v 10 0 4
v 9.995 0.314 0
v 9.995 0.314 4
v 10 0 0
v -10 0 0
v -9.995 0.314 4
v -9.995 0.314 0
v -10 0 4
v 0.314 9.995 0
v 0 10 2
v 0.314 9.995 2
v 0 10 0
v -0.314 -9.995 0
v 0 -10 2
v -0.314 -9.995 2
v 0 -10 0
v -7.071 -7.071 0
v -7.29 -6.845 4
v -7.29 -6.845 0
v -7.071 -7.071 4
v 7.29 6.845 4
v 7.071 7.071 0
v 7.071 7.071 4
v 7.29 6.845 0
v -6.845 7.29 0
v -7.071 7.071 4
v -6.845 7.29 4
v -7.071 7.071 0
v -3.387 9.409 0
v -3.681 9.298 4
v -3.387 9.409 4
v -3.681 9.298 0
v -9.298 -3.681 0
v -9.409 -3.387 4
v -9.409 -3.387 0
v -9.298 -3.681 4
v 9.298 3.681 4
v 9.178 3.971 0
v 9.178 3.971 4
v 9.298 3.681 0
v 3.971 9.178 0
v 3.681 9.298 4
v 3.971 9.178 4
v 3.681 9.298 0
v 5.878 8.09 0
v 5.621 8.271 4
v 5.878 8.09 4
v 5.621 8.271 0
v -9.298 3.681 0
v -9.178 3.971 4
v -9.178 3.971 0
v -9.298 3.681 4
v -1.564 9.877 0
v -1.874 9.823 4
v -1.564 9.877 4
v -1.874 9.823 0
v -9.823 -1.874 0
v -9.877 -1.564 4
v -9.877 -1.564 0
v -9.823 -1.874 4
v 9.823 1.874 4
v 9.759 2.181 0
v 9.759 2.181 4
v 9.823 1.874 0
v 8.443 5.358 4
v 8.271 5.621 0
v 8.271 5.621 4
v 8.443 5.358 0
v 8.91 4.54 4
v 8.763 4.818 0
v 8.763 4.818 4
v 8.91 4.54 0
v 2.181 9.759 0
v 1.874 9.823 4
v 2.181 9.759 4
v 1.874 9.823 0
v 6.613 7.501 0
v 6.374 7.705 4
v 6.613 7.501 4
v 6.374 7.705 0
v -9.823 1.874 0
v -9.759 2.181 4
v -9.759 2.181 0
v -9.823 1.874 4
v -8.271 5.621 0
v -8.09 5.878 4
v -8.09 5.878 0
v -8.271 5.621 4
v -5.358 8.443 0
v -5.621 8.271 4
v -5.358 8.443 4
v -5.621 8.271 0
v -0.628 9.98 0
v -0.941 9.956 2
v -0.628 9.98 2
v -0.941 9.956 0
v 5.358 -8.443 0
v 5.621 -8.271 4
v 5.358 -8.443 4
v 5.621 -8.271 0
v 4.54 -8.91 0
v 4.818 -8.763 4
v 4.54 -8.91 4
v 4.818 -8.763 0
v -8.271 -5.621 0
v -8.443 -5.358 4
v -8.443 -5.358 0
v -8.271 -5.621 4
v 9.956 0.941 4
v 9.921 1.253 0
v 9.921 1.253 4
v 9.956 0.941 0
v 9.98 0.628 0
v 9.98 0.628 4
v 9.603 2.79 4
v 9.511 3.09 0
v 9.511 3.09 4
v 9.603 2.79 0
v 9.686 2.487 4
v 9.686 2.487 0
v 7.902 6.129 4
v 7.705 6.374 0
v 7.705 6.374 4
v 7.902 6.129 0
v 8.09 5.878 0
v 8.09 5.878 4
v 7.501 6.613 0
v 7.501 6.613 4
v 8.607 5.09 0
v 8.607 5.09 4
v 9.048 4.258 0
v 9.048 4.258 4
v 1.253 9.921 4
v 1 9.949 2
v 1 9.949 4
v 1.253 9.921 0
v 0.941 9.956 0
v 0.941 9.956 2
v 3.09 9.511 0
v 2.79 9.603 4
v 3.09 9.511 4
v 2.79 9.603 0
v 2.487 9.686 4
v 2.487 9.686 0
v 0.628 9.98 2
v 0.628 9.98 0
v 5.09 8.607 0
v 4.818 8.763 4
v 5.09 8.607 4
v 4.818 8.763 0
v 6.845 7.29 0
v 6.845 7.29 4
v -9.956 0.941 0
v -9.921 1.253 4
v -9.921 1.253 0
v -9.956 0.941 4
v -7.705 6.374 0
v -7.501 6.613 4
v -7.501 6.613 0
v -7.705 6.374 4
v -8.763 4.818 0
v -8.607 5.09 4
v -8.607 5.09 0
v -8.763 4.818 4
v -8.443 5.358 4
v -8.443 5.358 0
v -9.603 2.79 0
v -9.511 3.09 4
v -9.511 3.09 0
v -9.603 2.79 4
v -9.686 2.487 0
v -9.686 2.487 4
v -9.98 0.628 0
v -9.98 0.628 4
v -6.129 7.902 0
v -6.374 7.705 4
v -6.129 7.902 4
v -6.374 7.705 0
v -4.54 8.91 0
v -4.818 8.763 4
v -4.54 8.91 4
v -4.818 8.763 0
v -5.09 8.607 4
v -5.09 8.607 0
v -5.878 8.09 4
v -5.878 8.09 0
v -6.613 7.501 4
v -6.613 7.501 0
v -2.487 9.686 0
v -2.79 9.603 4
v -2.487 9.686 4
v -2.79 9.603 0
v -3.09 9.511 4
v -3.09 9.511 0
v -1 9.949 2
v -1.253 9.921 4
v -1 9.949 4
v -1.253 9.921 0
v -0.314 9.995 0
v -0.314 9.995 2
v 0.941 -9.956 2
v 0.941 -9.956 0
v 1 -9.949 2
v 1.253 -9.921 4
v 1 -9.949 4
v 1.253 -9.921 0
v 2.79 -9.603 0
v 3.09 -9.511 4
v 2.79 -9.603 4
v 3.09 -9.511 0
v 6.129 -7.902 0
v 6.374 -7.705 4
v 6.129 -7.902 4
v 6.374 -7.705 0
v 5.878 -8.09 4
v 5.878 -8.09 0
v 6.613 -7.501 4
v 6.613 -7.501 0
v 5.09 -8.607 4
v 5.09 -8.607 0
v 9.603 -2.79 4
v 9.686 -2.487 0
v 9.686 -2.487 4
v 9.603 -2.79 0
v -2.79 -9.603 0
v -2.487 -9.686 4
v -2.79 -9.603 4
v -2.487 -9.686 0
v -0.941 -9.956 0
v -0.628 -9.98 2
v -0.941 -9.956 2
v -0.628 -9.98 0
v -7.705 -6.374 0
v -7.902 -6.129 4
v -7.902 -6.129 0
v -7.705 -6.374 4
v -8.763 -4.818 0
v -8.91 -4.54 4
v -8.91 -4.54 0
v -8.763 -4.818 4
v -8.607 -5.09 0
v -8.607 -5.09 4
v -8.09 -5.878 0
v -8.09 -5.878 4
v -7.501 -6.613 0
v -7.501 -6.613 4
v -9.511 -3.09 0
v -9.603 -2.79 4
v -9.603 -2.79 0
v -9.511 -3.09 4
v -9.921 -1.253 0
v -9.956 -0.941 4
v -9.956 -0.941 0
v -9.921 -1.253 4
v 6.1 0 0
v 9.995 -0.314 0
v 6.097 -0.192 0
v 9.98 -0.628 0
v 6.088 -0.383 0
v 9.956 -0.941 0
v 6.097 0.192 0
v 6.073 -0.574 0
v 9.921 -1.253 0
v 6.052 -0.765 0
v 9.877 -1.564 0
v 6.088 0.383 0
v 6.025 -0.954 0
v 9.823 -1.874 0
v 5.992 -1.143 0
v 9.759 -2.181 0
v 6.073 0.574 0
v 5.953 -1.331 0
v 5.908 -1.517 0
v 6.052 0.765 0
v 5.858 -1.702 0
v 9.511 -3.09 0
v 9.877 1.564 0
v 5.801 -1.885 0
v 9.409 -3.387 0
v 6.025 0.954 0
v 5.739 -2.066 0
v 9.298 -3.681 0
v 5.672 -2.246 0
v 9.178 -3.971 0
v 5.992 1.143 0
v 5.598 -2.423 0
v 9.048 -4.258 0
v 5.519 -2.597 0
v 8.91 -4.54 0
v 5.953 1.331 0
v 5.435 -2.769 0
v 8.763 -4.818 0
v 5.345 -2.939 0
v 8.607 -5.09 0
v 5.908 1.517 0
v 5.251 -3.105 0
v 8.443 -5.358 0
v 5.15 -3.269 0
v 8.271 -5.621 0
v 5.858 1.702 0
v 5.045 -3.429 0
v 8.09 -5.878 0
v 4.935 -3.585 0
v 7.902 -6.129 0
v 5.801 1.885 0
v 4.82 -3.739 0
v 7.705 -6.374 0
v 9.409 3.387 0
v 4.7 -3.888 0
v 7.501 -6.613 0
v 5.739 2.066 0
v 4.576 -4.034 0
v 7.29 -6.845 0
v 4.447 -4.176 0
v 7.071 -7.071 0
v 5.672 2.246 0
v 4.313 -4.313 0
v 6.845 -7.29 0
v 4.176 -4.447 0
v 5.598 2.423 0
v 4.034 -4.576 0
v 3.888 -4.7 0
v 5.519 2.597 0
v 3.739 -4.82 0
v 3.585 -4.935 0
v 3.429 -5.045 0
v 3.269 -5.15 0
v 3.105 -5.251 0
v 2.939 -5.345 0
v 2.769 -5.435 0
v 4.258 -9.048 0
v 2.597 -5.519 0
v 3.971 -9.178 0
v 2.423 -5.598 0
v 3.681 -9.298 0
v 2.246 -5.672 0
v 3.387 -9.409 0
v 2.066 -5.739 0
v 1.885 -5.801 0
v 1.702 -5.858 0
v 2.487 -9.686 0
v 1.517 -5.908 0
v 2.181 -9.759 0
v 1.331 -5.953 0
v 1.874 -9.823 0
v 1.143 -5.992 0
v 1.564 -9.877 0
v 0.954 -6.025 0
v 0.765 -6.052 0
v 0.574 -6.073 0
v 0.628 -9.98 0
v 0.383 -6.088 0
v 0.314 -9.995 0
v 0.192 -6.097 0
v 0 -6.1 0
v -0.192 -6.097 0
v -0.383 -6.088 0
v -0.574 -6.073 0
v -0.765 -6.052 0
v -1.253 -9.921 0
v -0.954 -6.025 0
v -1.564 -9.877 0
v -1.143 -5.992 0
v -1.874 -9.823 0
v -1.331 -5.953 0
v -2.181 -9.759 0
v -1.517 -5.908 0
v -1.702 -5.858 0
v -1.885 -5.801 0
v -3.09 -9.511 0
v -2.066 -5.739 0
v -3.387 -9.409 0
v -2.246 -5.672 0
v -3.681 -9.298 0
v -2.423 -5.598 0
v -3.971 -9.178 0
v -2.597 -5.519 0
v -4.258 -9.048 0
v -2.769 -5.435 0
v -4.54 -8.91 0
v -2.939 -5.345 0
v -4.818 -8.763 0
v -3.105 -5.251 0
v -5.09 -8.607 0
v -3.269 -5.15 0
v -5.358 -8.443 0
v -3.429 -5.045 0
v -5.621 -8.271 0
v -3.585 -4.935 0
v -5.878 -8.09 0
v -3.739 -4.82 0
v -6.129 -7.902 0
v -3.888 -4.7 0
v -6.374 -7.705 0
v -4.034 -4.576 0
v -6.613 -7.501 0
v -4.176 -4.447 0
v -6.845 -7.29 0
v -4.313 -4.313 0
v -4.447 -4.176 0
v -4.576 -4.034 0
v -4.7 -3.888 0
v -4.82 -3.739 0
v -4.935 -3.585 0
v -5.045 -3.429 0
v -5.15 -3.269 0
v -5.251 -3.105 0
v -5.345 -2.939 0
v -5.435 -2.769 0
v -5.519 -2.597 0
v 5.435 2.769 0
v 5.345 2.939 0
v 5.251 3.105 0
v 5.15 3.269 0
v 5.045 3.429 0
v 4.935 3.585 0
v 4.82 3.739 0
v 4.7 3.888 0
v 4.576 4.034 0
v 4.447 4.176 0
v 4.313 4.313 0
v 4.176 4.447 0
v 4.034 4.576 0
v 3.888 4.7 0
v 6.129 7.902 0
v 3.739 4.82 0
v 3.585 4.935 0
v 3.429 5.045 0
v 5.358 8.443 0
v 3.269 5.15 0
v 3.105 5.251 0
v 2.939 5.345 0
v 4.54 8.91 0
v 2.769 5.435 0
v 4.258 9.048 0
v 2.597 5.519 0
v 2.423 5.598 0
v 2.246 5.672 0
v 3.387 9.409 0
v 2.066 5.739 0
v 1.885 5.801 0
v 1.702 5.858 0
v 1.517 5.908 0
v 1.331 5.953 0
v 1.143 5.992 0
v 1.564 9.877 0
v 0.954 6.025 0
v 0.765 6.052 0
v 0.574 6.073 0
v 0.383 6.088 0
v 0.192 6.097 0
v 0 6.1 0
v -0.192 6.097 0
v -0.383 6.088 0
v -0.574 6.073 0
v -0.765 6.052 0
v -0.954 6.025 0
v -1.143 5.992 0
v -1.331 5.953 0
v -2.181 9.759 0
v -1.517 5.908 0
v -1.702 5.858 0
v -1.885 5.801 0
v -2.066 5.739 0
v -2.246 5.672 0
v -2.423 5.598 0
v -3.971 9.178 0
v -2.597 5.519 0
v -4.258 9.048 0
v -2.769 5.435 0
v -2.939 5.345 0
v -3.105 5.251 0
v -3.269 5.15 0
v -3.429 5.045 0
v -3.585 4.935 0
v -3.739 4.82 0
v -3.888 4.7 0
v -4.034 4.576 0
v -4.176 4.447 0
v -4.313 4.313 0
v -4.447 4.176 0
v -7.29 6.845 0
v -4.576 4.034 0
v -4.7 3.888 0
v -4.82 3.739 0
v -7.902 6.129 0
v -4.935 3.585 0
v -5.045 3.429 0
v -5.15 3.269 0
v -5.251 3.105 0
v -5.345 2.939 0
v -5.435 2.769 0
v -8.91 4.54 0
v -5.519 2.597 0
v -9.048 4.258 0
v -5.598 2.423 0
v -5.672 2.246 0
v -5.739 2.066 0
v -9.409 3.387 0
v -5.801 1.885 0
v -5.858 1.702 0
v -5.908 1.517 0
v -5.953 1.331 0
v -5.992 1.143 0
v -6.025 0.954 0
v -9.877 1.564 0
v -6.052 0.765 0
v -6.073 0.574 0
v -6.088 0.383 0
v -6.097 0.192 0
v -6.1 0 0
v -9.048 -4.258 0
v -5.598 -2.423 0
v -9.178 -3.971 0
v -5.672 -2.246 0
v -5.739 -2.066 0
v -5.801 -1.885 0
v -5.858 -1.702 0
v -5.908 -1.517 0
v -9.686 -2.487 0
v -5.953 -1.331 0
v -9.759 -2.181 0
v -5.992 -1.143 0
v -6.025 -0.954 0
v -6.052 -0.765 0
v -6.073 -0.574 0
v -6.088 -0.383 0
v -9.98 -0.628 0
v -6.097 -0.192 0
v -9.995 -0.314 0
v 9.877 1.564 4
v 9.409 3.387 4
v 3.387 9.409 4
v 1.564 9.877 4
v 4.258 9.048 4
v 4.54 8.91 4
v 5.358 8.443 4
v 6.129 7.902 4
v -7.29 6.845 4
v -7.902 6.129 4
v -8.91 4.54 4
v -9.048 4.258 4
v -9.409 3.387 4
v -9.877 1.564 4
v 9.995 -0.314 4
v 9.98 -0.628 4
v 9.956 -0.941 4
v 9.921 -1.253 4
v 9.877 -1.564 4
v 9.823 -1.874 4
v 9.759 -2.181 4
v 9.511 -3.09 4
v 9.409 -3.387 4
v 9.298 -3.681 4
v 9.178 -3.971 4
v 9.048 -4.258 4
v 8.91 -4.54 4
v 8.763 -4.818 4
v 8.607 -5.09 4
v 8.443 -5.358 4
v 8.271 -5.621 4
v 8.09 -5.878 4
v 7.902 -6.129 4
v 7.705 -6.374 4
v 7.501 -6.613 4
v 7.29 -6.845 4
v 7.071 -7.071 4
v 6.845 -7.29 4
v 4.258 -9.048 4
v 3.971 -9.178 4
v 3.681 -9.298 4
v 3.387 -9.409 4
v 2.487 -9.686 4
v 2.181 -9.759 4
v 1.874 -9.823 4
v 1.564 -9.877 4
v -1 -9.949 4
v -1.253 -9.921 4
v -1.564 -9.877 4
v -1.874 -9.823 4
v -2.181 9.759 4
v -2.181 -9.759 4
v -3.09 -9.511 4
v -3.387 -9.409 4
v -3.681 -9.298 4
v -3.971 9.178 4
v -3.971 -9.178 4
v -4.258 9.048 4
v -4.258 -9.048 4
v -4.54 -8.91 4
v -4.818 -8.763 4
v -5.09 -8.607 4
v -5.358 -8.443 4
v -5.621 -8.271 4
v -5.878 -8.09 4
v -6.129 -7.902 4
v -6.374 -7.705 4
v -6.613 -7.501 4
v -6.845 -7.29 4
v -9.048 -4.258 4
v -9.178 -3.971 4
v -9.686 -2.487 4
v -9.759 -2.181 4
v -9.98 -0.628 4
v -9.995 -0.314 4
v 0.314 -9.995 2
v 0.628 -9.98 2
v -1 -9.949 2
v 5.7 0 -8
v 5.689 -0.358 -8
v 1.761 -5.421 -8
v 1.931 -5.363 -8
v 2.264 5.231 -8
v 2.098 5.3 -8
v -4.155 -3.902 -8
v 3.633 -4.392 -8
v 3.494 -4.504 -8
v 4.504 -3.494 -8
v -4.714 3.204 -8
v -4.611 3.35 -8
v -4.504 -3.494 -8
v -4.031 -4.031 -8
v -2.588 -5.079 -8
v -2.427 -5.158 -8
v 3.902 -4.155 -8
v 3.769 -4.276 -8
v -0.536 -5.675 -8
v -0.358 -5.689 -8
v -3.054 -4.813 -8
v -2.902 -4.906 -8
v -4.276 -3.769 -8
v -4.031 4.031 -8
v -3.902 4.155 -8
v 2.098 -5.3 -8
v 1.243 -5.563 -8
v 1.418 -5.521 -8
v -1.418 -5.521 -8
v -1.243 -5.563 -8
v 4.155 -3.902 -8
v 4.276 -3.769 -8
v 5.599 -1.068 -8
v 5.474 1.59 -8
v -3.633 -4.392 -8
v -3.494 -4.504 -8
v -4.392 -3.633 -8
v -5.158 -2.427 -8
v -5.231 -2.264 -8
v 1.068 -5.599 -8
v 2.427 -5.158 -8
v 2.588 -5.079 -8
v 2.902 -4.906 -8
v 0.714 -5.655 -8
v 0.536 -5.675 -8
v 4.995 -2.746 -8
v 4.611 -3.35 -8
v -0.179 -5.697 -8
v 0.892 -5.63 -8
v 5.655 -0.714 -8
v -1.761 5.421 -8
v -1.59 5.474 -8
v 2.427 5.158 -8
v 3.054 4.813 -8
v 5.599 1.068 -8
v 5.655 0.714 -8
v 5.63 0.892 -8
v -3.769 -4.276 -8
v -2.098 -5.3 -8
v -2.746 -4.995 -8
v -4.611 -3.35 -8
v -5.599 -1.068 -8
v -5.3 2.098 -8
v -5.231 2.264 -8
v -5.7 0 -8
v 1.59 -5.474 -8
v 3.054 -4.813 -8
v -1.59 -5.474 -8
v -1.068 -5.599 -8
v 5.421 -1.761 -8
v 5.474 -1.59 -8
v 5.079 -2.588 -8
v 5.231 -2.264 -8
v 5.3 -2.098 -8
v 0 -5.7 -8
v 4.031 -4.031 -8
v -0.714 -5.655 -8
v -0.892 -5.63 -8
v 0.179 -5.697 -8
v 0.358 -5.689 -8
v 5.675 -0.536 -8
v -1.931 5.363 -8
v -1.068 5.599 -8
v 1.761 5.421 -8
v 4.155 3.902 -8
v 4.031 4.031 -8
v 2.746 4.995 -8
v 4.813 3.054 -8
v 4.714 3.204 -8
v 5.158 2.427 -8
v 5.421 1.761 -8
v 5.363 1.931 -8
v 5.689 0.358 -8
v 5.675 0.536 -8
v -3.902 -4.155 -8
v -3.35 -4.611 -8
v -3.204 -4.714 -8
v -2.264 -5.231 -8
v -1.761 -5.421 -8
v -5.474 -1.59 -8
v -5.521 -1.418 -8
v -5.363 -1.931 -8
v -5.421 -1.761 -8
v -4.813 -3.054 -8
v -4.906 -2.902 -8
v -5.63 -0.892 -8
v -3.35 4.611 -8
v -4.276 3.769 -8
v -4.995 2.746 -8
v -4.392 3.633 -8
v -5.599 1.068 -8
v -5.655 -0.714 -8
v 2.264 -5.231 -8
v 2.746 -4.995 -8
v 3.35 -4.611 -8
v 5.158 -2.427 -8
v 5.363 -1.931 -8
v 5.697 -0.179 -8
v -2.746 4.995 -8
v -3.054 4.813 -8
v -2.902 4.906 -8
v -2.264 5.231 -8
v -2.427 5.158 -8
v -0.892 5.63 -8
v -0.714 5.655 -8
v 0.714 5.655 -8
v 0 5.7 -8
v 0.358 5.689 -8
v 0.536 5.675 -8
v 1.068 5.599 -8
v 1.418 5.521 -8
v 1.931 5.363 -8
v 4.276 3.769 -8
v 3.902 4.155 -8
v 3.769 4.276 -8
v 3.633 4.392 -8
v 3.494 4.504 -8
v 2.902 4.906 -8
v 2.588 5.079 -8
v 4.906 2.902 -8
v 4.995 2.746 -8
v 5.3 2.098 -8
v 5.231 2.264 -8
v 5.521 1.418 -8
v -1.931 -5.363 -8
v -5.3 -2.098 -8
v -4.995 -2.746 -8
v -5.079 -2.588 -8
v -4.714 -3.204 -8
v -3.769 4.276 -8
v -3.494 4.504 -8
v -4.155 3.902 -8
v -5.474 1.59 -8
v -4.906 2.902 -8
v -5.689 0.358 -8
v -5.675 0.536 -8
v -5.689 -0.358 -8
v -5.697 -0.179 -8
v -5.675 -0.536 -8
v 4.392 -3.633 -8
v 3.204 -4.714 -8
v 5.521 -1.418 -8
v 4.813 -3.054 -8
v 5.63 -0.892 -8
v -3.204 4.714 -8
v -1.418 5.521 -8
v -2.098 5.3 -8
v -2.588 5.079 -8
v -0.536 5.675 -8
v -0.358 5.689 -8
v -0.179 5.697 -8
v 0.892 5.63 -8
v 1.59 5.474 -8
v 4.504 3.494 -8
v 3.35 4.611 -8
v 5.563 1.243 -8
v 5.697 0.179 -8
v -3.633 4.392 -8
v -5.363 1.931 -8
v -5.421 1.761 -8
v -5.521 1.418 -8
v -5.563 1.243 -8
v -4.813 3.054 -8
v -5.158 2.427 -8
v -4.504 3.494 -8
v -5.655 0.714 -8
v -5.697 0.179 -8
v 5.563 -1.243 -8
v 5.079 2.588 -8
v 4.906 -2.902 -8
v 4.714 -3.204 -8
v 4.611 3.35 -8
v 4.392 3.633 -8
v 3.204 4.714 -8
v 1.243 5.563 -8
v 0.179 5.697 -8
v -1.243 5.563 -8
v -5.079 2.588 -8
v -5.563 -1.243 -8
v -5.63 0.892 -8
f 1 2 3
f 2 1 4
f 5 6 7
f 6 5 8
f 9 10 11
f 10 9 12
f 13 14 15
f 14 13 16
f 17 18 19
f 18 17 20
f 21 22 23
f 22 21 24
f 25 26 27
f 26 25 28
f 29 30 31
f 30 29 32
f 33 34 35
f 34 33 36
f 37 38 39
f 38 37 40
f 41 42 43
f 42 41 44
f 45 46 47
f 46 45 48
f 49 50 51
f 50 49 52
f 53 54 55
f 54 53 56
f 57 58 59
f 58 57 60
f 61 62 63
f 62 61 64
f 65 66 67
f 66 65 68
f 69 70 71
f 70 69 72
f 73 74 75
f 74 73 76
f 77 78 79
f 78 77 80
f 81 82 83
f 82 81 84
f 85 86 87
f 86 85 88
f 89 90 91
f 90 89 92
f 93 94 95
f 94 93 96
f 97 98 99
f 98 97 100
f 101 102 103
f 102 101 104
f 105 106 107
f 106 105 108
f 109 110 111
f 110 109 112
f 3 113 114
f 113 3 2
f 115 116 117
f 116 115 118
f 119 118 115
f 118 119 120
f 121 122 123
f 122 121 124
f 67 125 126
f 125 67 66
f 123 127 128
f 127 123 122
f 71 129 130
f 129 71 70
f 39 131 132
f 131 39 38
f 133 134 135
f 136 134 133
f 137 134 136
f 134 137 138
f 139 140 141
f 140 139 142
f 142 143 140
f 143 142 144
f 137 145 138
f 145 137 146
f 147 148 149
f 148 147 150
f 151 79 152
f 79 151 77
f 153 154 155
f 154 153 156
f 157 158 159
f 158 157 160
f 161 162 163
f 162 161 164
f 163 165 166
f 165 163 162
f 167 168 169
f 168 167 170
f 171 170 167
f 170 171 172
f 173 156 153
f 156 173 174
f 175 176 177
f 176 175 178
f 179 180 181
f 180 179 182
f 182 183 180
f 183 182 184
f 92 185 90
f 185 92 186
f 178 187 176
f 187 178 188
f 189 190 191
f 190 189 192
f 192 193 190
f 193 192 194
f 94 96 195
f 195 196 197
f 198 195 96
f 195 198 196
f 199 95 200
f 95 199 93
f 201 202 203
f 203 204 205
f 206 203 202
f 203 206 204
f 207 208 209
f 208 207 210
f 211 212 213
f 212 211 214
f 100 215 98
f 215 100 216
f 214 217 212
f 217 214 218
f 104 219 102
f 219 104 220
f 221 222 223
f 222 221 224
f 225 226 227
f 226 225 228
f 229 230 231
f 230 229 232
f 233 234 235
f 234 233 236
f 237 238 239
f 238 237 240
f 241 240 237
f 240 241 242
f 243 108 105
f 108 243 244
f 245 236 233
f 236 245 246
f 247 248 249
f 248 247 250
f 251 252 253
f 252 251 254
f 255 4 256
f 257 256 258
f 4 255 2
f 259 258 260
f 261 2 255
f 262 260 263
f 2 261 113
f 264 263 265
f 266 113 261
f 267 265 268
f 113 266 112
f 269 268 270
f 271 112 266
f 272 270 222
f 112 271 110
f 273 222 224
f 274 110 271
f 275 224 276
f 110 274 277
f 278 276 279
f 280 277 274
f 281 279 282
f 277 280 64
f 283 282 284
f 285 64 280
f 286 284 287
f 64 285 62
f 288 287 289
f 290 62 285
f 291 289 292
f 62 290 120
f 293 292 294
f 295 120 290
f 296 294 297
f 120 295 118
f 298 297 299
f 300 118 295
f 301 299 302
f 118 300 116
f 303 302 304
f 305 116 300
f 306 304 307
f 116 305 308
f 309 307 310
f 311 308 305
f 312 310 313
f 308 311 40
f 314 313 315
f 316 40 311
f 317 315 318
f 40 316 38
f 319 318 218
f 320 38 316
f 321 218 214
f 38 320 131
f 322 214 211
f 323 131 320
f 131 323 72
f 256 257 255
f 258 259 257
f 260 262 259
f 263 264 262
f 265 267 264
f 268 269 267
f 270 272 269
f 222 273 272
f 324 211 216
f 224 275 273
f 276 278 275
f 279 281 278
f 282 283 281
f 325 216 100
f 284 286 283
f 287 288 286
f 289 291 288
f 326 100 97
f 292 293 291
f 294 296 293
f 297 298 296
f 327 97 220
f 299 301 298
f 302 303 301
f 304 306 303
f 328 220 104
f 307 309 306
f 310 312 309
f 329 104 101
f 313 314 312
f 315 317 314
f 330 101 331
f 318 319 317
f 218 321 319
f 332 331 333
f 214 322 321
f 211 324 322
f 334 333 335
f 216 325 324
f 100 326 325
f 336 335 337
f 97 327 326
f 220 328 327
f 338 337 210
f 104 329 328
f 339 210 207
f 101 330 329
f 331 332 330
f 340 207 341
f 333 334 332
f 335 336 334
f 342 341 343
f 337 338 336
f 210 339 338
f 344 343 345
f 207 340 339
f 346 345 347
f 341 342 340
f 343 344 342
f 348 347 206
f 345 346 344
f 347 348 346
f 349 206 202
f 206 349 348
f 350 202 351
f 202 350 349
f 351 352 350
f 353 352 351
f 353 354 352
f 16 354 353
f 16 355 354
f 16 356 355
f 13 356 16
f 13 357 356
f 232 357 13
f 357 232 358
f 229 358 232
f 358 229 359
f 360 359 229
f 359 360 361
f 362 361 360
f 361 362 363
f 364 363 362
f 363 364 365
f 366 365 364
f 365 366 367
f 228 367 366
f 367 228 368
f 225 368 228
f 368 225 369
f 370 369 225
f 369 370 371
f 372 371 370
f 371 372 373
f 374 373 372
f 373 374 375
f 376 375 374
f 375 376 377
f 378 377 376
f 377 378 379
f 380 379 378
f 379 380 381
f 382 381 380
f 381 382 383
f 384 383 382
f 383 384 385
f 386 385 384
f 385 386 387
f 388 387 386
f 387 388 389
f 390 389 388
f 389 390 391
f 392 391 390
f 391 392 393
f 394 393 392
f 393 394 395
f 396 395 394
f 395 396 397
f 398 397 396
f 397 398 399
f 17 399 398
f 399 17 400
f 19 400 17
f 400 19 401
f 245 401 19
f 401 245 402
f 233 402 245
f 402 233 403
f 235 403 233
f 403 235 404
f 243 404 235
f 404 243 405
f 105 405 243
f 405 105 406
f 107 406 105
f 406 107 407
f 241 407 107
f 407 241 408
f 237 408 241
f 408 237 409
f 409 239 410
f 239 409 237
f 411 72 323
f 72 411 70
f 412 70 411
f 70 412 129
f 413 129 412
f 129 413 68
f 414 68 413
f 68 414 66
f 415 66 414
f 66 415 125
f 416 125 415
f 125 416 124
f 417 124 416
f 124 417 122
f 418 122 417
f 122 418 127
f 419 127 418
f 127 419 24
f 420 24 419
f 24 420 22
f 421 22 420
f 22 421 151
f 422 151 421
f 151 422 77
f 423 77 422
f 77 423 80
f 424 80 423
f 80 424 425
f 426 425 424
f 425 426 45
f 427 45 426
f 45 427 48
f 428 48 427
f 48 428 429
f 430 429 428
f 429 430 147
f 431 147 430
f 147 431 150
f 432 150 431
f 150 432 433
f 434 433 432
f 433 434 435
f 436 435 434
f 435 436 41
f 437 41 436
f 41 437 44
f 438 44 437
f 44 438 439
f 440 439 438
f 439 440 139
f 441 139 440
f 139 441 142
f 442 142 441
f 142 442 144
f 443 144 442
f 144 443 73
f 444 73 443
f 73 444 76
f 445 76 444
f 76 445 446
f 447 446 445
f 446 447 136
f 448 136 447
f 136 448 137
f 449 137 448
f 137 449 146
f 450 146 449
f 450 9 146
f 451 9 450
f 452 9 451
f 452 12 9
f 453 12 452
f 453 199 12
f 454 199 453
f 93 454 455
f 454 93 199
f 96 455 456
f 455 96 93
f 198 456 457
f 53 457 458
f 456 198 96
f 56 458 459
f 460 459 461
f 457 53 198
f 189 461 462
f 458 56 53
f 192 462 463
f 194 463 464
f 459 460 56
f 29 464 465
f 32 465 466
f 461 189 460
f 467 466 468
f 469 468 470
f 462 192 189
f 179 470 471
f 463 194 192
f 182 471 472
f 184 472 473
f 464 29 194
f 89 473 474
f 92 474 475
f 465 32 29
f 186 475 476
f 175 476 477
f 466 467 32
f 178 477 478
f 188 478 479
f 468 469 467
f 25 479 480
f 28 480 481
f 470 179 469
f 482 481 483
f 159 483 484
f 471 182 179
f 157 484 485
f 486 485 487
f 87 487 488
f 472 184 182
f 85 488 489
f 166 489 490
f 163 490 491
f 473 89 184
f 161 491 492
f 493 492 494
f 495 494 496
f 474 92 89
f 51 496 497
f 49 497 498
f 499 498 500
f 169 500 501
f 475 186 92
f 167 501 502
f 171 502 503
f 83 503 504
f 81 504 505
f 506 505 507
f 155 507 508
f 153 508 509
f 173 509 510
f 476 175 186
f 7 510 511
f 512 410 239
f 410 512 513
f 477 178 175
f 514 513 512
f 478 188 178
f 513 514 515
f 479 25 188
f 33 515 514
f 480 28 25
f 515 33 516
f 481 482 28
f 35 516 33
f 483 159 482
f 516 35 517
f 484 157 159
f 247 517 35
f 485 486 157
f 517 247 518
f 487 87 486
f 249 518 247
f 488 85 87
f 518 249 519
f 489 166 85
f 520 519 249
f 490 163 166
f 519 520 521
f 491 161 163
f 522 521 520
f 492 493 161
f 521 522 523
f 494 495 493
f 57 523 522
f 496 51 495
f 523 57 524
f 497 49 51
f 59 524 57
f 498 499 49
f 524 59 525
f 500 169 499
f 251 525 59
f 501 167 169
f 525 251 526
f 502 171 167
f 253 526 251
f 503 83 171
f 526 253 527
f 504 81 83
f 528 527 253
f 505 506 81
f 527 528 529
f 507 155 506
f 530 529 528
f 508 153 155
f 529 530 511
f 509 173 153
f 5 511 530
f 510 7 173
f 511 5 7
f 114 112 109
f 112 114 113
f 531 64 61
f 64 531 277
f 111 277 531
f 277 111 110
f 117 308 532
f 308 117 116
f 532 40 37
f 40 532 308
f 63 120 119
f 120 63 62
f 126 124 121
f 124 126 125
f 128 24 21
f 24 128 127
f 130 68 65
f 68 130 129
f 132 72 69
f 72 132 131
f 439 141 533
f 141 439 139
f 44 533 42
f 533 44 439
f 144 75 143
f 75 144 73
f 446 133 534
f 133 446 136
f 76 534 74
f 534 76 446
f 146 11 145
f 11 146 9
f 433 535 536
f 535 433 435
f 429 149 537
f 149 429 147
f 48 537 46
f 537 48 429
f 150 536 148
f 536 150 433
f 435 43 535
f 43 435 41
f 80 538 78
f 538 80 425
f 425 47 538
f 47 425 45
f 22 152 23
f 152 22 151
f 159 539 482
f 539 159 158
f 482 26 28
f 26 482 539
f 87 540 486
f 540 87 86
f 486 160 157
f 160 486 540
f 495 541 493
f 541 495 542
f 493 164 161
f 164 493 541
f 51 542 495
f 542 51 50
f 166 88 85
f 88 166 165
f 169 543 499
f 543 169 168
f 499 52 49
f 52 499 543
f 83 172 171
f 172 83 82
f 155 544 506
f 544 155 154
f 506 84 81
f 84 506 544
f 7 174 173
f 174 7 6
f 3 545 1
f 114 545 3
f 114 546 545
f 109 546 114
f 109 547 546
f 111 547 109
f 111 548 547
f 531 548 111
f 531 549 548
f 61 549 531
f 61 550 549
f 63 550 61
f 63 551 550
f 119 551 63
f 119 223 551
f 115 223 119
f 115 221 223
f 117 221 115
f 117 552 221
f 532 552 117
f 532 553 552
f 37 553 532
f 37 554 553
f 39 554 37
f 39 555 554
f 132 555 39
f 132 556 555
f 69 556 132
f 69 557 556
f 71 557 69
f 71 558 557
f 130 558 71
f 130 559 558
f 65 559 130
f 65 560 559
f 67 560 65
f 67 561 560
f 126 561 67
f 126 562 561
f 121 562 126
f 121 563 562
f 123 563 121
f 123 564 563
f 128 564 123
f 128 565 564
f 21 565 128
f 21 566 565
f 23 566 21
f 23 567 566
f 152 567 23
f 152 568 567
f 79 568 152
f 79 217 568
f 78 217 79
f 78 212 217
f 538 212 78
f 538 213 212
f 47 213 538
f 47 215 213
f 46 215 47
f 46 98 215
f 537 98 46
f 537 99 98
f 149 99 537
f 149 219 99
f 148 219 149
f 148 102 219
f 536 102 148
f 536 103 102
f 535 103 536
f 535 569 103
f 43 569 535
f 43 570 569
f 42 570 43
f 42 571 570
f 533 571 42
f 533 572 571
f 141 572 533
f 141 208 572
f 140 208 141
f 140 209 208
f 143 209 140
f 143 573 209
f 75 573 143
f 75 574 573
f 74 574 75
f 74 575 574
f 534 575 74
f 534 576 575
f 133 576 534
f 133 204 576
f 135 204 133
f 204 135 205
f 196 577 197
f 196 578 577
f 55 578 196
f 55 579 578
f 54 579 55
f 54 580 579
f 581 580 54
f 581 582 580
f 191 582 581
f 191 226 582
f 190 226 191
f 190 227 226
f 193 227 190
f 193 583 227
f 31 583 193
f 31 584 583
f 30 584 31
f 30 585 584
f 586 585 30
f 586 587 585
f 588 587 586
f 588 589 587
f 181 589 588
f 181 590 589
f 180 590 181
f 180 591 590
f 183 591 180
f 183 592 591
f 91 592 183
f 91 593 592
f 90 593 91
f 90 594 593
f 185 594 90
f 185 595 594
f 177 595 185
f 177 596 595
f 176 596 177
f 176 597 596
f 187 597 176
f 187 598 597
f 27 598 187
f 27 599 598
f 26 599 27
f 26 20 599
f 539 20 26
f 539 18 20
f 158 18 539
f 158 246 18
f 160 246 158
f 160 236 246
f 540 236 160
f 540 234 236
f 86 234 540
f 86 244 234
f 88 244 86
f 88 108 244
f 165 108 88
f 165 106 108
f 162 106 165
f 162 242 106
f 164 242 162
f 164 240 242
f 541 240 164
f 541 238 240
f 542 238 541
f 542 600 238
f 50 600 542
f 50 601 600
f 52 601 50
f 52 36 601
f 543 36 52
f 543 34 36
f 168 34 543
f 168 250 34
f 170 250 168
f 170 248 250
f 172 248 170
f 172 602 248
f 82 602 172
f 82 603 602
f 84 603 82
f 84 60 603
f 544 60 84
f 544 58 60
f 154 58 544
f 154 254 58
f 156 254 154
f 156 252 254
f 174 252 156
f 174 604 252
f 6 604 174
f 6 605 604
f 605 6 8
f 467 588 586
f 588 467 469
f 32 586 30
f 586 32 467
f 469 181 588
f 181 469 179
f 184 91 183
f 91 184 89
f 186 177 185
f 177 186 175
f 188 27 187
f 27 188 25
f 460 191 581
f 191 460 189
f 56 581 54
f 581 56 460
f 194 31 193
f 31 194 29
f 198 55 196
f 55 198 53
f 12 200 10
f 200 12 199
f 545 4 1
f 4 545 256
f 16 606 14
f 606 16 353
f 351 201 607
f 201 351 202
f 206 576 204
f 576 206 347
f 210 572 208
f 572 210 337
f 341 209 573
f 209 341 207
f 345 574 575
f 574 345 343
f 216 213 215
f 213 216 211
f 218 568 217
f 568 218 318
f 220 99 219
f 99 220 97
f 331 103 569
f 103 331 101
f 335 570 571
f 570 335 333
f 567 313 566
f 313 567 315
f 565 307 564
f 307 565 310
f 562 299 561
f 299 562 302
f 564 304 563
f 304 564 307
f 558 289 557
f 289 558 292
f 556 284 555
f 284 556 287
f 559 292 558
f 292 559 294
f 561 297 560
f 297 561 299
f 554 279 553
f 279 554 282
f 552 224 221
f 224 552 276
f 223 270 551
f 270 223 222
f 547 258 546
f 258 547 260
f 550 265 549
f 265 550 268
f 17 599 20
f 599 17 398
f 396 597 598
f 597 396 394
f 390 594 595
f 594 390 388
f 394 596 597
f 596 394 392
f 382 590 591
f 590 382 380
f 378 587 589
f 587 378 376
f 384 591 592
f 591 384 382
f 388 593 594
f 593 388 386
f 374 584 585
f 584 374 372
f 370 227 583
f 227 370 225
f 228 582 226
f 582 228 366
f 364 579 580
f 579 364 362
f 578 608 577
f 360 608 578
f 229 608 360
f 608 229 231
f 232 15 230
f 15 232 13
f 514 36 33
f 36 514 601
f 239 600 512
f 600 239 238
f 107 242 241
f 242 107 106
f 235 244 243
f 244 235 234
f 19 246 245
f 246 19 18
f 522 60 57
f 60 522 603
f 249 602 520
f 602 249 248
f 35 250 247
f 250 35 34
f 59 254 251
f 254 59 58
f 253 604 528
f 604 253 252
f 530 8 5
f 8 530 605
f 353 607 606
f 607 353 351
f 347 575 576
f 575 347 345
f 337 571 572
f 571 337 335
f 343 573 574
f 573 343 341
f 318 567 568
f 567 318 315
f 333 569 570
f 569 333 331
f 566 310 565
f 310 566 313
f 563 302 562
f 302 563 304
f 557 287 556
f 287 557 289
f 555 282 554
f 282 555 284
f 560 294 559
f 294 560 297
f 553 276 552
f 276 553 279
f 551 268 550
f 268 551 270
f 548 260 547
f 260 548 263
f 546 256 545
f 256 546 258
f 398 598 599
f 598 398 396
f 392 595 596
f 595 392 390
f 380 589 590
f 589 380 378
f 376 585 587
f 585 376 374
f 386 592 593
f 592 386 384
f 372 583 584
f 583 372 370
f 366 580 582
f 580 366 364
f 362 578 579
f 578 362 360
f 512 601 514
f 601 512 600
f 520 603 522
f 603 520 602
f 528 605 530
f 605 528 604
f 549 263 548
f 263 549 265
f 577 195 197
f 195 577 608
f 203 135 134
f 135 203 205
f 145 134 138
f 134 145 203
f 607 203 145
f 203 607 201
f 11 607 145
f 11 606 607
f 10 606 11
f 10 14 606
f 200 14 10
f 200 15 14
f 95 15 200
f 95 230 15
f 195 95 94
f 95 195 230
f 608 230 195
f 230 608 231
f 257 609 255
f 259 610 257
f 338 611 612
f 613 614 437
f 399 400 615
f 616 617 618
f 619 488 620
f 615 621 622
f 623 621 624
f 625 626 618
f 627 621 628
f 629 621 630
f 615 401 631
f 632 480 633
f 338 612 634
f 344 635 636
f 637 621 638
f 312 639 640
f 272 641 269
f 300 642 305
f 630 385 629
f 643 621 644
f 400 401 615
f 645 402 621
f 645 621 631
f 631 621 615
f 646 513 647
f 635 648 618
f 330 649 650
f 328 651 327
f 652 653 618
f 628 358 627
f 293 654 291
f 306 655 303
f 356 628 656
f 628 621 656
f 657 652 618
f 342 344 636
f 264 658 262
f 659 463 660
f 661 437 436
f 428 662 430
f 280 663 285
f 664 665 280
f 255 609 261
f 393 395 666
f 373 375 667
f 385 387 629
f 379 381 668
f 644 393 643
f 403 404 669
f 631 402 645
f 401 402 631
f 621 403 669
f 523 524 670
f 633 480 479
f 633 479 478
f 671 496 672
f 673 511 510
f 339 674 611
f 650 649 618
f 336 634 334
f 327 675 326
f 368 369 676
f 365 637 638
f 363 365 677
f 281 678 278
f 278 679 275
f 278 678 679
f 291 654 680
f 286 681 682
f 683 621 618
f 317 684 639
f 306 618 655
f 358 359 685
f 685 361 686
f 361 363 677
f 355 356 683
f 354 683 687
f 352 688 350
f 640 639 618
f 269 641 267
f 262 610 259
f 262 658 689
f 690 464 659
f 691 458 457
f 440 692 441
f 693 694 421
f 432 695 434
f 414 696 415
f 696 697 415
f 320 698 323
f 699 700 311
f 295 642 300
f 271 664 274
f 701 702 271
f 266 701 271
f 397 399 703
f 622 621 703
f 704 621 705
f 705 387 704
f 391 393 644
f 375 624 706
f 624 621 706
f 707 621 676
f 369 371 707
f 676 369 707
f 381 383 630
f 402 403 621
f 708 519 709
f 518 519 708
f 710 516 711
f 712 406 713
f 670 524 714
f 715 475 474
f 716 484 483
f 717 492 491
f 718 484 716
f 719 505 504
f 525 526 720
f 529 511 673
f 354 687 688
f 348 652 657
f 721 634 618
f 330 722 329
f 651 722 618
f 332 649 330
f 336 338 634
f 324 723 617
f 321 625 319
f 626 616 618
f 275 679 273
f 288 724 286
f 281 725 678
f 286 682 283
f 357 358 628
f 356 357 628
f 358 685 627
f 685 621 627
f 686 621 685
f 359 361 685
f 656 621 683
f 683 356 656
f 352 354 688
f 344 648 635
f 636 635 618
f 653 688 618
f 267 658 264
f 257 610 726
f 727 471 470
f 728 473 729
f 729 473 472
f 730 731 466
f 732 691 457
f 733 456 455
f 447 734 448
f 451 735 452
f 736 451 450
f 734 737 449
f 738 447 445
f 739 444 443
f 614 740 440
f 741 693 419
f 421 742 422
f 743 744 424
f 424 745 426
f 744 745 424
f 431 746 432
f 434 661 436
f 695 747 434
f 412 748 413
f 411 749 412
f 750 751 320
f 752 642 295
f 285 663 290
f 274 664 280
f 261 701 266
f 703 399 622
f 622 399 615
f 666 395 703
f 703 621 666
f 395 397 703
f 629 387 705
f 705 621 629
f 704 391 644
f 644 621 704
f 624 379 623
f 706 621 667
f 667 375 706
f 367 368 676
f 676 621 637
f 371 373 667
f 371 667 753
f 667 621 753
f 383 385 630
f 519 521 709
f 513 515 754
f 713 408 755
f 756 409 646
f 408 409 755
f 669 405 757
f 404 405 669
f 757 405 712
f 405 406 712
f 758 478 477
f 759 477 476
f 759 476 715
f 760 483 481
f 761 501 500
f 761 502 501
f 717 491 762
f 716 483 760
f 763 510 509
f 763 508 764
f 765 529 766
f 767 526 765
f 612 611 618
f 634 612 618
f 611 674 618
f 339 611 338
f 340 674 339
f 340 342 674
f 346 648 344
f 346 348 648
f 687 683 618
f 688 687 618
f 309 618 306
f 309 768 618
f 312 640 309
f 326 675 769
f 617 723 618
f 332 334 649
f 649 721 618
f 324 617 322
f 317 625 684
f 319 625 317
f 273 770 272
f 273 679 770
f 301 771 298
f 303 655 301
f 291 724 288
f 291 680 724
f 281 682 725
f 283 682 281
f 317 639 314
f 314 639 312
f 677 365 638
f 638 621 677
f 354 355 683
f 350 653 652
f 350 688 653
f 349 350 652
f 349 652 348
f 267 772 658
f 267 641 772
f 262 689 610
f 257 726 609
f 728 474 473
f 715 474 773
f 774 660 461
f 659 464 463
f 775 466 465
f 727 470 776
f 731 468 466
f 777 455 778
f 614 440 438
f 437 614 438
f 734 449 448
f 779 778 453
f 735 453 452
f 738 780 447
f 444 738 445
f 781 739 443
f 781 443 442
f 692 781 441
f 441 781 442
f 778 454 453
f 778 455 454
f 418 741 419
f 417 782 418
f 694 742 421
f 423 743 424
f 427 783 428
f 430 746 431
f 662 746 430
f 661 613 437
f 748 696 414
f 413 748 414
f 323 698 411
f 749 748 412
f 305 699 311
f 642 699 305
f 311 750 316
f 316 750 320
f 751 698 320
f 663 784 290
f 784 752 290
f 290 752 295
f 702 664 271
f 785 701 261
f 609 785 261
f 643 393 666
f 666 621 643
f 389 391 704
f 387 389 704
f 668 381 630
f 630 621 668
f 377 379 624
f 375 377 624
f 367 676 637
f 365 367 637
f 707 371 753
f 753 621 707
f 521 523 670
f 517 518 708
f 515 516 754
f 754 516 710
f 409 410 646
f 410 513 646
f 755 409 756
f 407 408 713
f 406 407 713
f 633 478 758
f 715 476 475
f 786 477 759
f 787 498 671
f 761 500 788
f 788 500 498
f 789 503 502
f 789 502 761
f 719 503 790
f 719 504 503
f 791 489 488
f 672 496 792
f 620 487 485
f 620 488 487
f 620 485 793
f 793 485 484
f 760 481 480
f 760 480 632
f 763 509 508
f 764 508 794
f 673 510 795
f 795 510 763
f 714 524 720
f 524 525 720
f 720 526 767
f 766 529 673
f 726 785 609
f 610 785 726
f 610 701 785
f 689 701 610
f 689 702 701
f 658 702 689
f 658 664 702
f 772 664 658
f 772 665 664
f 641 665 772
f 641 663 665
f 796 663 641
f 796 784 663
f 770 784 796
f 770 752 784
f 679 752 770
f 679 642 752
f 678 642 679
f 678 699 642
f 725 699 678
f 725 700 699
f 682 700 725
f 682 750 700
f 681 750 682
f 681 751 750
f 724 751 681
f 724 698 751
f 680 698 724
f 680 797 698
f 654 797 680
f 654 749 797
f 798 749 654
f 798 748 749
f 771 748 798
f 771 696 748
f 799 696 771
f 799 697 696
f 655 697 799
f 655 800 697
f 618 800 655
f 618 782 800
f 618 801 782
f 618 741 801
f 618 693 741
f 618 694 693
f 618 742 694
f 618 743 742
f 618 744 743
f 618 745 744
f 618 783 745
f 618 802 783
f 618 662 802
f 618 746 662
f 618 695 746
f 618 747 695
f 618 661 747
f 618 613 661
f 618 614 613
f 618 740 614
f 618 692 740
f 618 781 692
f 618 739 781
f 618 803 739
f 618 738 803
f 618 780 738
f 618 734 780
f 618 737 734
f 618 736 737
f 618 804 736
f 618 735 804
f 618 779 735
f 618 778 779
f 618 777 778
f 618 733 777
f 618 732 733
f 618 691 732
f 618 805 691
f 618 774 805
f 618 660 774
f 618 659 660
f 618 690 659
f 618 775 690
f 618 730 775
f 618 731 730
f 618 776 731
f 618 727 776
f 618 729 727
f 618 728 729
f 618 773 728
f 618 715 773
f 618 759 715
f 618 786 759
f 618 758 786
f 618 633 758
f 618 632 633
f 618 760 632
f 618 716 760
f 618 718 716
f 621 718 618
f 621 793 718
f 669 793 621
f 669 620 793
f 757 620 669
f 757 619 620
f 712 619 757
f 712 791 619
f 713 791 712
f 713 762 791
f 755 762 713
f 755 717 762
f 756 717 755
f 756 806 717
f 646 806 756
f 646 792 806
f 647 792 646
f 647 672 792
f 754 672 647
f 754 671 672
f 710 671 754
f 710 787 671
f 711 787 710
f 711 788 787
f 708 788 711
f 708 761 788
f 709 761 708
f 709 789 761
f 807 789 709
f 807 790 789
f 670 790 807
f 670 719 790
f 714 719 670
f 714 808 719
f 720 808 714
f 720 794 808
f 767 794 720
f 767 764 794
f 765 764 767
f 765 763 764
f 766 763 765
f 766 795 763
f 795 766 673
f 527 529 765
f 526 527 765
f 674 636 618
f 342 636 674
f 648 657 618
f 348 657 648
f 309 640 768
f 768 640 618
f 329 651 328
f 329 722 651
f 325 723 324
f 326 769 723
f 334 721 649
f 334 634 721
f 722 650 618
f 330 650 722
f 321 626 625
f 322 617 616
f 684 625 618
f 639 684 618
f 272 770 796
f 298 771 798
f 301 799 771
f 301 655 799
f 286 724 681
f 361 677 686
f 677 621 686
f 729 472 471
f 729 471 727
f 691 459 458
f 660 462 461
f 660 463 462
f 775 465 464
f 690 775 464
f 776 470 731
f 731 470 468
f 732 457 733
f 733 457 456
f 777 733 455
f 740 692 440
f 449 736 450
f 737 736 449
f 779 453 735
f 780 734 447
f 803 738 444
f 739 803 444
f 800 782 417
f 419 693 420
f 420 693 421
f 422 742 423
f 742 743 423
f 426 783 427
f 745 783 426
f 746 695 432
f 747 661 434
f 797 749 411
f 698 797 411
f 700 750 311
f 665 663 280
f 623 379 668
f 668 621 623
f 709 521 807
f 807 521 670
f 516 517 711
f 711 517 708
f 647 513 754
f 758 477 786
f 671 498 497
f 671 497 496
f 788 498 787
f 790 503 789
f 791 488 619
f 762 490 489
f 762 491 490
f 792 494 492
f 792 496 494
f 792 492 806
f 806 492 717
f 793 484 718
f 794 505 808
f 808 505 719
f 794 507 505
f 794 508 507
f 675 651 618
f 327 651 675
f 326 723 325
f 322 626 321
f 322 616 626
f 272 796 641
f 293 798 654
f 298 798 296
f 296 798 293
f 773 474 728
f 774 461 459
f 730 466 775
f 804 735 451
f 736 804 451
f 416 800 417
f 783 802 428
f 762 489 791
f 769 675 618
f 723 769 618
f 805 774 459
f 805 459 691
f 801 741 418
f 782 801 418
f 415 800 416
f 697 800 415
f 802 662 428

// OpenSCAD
difference(){
    cylinder(d=20, h=4, center=false, $fn=200 );
    translate([0, 0, 4]) {
        cube(size=[2, 20, 4], center=true);
    }
    
}



rotate([180, 0, 0]) {
    cylinder(d1=12.2, d2=11.4, h=8, center=false, $fn=200);
}
